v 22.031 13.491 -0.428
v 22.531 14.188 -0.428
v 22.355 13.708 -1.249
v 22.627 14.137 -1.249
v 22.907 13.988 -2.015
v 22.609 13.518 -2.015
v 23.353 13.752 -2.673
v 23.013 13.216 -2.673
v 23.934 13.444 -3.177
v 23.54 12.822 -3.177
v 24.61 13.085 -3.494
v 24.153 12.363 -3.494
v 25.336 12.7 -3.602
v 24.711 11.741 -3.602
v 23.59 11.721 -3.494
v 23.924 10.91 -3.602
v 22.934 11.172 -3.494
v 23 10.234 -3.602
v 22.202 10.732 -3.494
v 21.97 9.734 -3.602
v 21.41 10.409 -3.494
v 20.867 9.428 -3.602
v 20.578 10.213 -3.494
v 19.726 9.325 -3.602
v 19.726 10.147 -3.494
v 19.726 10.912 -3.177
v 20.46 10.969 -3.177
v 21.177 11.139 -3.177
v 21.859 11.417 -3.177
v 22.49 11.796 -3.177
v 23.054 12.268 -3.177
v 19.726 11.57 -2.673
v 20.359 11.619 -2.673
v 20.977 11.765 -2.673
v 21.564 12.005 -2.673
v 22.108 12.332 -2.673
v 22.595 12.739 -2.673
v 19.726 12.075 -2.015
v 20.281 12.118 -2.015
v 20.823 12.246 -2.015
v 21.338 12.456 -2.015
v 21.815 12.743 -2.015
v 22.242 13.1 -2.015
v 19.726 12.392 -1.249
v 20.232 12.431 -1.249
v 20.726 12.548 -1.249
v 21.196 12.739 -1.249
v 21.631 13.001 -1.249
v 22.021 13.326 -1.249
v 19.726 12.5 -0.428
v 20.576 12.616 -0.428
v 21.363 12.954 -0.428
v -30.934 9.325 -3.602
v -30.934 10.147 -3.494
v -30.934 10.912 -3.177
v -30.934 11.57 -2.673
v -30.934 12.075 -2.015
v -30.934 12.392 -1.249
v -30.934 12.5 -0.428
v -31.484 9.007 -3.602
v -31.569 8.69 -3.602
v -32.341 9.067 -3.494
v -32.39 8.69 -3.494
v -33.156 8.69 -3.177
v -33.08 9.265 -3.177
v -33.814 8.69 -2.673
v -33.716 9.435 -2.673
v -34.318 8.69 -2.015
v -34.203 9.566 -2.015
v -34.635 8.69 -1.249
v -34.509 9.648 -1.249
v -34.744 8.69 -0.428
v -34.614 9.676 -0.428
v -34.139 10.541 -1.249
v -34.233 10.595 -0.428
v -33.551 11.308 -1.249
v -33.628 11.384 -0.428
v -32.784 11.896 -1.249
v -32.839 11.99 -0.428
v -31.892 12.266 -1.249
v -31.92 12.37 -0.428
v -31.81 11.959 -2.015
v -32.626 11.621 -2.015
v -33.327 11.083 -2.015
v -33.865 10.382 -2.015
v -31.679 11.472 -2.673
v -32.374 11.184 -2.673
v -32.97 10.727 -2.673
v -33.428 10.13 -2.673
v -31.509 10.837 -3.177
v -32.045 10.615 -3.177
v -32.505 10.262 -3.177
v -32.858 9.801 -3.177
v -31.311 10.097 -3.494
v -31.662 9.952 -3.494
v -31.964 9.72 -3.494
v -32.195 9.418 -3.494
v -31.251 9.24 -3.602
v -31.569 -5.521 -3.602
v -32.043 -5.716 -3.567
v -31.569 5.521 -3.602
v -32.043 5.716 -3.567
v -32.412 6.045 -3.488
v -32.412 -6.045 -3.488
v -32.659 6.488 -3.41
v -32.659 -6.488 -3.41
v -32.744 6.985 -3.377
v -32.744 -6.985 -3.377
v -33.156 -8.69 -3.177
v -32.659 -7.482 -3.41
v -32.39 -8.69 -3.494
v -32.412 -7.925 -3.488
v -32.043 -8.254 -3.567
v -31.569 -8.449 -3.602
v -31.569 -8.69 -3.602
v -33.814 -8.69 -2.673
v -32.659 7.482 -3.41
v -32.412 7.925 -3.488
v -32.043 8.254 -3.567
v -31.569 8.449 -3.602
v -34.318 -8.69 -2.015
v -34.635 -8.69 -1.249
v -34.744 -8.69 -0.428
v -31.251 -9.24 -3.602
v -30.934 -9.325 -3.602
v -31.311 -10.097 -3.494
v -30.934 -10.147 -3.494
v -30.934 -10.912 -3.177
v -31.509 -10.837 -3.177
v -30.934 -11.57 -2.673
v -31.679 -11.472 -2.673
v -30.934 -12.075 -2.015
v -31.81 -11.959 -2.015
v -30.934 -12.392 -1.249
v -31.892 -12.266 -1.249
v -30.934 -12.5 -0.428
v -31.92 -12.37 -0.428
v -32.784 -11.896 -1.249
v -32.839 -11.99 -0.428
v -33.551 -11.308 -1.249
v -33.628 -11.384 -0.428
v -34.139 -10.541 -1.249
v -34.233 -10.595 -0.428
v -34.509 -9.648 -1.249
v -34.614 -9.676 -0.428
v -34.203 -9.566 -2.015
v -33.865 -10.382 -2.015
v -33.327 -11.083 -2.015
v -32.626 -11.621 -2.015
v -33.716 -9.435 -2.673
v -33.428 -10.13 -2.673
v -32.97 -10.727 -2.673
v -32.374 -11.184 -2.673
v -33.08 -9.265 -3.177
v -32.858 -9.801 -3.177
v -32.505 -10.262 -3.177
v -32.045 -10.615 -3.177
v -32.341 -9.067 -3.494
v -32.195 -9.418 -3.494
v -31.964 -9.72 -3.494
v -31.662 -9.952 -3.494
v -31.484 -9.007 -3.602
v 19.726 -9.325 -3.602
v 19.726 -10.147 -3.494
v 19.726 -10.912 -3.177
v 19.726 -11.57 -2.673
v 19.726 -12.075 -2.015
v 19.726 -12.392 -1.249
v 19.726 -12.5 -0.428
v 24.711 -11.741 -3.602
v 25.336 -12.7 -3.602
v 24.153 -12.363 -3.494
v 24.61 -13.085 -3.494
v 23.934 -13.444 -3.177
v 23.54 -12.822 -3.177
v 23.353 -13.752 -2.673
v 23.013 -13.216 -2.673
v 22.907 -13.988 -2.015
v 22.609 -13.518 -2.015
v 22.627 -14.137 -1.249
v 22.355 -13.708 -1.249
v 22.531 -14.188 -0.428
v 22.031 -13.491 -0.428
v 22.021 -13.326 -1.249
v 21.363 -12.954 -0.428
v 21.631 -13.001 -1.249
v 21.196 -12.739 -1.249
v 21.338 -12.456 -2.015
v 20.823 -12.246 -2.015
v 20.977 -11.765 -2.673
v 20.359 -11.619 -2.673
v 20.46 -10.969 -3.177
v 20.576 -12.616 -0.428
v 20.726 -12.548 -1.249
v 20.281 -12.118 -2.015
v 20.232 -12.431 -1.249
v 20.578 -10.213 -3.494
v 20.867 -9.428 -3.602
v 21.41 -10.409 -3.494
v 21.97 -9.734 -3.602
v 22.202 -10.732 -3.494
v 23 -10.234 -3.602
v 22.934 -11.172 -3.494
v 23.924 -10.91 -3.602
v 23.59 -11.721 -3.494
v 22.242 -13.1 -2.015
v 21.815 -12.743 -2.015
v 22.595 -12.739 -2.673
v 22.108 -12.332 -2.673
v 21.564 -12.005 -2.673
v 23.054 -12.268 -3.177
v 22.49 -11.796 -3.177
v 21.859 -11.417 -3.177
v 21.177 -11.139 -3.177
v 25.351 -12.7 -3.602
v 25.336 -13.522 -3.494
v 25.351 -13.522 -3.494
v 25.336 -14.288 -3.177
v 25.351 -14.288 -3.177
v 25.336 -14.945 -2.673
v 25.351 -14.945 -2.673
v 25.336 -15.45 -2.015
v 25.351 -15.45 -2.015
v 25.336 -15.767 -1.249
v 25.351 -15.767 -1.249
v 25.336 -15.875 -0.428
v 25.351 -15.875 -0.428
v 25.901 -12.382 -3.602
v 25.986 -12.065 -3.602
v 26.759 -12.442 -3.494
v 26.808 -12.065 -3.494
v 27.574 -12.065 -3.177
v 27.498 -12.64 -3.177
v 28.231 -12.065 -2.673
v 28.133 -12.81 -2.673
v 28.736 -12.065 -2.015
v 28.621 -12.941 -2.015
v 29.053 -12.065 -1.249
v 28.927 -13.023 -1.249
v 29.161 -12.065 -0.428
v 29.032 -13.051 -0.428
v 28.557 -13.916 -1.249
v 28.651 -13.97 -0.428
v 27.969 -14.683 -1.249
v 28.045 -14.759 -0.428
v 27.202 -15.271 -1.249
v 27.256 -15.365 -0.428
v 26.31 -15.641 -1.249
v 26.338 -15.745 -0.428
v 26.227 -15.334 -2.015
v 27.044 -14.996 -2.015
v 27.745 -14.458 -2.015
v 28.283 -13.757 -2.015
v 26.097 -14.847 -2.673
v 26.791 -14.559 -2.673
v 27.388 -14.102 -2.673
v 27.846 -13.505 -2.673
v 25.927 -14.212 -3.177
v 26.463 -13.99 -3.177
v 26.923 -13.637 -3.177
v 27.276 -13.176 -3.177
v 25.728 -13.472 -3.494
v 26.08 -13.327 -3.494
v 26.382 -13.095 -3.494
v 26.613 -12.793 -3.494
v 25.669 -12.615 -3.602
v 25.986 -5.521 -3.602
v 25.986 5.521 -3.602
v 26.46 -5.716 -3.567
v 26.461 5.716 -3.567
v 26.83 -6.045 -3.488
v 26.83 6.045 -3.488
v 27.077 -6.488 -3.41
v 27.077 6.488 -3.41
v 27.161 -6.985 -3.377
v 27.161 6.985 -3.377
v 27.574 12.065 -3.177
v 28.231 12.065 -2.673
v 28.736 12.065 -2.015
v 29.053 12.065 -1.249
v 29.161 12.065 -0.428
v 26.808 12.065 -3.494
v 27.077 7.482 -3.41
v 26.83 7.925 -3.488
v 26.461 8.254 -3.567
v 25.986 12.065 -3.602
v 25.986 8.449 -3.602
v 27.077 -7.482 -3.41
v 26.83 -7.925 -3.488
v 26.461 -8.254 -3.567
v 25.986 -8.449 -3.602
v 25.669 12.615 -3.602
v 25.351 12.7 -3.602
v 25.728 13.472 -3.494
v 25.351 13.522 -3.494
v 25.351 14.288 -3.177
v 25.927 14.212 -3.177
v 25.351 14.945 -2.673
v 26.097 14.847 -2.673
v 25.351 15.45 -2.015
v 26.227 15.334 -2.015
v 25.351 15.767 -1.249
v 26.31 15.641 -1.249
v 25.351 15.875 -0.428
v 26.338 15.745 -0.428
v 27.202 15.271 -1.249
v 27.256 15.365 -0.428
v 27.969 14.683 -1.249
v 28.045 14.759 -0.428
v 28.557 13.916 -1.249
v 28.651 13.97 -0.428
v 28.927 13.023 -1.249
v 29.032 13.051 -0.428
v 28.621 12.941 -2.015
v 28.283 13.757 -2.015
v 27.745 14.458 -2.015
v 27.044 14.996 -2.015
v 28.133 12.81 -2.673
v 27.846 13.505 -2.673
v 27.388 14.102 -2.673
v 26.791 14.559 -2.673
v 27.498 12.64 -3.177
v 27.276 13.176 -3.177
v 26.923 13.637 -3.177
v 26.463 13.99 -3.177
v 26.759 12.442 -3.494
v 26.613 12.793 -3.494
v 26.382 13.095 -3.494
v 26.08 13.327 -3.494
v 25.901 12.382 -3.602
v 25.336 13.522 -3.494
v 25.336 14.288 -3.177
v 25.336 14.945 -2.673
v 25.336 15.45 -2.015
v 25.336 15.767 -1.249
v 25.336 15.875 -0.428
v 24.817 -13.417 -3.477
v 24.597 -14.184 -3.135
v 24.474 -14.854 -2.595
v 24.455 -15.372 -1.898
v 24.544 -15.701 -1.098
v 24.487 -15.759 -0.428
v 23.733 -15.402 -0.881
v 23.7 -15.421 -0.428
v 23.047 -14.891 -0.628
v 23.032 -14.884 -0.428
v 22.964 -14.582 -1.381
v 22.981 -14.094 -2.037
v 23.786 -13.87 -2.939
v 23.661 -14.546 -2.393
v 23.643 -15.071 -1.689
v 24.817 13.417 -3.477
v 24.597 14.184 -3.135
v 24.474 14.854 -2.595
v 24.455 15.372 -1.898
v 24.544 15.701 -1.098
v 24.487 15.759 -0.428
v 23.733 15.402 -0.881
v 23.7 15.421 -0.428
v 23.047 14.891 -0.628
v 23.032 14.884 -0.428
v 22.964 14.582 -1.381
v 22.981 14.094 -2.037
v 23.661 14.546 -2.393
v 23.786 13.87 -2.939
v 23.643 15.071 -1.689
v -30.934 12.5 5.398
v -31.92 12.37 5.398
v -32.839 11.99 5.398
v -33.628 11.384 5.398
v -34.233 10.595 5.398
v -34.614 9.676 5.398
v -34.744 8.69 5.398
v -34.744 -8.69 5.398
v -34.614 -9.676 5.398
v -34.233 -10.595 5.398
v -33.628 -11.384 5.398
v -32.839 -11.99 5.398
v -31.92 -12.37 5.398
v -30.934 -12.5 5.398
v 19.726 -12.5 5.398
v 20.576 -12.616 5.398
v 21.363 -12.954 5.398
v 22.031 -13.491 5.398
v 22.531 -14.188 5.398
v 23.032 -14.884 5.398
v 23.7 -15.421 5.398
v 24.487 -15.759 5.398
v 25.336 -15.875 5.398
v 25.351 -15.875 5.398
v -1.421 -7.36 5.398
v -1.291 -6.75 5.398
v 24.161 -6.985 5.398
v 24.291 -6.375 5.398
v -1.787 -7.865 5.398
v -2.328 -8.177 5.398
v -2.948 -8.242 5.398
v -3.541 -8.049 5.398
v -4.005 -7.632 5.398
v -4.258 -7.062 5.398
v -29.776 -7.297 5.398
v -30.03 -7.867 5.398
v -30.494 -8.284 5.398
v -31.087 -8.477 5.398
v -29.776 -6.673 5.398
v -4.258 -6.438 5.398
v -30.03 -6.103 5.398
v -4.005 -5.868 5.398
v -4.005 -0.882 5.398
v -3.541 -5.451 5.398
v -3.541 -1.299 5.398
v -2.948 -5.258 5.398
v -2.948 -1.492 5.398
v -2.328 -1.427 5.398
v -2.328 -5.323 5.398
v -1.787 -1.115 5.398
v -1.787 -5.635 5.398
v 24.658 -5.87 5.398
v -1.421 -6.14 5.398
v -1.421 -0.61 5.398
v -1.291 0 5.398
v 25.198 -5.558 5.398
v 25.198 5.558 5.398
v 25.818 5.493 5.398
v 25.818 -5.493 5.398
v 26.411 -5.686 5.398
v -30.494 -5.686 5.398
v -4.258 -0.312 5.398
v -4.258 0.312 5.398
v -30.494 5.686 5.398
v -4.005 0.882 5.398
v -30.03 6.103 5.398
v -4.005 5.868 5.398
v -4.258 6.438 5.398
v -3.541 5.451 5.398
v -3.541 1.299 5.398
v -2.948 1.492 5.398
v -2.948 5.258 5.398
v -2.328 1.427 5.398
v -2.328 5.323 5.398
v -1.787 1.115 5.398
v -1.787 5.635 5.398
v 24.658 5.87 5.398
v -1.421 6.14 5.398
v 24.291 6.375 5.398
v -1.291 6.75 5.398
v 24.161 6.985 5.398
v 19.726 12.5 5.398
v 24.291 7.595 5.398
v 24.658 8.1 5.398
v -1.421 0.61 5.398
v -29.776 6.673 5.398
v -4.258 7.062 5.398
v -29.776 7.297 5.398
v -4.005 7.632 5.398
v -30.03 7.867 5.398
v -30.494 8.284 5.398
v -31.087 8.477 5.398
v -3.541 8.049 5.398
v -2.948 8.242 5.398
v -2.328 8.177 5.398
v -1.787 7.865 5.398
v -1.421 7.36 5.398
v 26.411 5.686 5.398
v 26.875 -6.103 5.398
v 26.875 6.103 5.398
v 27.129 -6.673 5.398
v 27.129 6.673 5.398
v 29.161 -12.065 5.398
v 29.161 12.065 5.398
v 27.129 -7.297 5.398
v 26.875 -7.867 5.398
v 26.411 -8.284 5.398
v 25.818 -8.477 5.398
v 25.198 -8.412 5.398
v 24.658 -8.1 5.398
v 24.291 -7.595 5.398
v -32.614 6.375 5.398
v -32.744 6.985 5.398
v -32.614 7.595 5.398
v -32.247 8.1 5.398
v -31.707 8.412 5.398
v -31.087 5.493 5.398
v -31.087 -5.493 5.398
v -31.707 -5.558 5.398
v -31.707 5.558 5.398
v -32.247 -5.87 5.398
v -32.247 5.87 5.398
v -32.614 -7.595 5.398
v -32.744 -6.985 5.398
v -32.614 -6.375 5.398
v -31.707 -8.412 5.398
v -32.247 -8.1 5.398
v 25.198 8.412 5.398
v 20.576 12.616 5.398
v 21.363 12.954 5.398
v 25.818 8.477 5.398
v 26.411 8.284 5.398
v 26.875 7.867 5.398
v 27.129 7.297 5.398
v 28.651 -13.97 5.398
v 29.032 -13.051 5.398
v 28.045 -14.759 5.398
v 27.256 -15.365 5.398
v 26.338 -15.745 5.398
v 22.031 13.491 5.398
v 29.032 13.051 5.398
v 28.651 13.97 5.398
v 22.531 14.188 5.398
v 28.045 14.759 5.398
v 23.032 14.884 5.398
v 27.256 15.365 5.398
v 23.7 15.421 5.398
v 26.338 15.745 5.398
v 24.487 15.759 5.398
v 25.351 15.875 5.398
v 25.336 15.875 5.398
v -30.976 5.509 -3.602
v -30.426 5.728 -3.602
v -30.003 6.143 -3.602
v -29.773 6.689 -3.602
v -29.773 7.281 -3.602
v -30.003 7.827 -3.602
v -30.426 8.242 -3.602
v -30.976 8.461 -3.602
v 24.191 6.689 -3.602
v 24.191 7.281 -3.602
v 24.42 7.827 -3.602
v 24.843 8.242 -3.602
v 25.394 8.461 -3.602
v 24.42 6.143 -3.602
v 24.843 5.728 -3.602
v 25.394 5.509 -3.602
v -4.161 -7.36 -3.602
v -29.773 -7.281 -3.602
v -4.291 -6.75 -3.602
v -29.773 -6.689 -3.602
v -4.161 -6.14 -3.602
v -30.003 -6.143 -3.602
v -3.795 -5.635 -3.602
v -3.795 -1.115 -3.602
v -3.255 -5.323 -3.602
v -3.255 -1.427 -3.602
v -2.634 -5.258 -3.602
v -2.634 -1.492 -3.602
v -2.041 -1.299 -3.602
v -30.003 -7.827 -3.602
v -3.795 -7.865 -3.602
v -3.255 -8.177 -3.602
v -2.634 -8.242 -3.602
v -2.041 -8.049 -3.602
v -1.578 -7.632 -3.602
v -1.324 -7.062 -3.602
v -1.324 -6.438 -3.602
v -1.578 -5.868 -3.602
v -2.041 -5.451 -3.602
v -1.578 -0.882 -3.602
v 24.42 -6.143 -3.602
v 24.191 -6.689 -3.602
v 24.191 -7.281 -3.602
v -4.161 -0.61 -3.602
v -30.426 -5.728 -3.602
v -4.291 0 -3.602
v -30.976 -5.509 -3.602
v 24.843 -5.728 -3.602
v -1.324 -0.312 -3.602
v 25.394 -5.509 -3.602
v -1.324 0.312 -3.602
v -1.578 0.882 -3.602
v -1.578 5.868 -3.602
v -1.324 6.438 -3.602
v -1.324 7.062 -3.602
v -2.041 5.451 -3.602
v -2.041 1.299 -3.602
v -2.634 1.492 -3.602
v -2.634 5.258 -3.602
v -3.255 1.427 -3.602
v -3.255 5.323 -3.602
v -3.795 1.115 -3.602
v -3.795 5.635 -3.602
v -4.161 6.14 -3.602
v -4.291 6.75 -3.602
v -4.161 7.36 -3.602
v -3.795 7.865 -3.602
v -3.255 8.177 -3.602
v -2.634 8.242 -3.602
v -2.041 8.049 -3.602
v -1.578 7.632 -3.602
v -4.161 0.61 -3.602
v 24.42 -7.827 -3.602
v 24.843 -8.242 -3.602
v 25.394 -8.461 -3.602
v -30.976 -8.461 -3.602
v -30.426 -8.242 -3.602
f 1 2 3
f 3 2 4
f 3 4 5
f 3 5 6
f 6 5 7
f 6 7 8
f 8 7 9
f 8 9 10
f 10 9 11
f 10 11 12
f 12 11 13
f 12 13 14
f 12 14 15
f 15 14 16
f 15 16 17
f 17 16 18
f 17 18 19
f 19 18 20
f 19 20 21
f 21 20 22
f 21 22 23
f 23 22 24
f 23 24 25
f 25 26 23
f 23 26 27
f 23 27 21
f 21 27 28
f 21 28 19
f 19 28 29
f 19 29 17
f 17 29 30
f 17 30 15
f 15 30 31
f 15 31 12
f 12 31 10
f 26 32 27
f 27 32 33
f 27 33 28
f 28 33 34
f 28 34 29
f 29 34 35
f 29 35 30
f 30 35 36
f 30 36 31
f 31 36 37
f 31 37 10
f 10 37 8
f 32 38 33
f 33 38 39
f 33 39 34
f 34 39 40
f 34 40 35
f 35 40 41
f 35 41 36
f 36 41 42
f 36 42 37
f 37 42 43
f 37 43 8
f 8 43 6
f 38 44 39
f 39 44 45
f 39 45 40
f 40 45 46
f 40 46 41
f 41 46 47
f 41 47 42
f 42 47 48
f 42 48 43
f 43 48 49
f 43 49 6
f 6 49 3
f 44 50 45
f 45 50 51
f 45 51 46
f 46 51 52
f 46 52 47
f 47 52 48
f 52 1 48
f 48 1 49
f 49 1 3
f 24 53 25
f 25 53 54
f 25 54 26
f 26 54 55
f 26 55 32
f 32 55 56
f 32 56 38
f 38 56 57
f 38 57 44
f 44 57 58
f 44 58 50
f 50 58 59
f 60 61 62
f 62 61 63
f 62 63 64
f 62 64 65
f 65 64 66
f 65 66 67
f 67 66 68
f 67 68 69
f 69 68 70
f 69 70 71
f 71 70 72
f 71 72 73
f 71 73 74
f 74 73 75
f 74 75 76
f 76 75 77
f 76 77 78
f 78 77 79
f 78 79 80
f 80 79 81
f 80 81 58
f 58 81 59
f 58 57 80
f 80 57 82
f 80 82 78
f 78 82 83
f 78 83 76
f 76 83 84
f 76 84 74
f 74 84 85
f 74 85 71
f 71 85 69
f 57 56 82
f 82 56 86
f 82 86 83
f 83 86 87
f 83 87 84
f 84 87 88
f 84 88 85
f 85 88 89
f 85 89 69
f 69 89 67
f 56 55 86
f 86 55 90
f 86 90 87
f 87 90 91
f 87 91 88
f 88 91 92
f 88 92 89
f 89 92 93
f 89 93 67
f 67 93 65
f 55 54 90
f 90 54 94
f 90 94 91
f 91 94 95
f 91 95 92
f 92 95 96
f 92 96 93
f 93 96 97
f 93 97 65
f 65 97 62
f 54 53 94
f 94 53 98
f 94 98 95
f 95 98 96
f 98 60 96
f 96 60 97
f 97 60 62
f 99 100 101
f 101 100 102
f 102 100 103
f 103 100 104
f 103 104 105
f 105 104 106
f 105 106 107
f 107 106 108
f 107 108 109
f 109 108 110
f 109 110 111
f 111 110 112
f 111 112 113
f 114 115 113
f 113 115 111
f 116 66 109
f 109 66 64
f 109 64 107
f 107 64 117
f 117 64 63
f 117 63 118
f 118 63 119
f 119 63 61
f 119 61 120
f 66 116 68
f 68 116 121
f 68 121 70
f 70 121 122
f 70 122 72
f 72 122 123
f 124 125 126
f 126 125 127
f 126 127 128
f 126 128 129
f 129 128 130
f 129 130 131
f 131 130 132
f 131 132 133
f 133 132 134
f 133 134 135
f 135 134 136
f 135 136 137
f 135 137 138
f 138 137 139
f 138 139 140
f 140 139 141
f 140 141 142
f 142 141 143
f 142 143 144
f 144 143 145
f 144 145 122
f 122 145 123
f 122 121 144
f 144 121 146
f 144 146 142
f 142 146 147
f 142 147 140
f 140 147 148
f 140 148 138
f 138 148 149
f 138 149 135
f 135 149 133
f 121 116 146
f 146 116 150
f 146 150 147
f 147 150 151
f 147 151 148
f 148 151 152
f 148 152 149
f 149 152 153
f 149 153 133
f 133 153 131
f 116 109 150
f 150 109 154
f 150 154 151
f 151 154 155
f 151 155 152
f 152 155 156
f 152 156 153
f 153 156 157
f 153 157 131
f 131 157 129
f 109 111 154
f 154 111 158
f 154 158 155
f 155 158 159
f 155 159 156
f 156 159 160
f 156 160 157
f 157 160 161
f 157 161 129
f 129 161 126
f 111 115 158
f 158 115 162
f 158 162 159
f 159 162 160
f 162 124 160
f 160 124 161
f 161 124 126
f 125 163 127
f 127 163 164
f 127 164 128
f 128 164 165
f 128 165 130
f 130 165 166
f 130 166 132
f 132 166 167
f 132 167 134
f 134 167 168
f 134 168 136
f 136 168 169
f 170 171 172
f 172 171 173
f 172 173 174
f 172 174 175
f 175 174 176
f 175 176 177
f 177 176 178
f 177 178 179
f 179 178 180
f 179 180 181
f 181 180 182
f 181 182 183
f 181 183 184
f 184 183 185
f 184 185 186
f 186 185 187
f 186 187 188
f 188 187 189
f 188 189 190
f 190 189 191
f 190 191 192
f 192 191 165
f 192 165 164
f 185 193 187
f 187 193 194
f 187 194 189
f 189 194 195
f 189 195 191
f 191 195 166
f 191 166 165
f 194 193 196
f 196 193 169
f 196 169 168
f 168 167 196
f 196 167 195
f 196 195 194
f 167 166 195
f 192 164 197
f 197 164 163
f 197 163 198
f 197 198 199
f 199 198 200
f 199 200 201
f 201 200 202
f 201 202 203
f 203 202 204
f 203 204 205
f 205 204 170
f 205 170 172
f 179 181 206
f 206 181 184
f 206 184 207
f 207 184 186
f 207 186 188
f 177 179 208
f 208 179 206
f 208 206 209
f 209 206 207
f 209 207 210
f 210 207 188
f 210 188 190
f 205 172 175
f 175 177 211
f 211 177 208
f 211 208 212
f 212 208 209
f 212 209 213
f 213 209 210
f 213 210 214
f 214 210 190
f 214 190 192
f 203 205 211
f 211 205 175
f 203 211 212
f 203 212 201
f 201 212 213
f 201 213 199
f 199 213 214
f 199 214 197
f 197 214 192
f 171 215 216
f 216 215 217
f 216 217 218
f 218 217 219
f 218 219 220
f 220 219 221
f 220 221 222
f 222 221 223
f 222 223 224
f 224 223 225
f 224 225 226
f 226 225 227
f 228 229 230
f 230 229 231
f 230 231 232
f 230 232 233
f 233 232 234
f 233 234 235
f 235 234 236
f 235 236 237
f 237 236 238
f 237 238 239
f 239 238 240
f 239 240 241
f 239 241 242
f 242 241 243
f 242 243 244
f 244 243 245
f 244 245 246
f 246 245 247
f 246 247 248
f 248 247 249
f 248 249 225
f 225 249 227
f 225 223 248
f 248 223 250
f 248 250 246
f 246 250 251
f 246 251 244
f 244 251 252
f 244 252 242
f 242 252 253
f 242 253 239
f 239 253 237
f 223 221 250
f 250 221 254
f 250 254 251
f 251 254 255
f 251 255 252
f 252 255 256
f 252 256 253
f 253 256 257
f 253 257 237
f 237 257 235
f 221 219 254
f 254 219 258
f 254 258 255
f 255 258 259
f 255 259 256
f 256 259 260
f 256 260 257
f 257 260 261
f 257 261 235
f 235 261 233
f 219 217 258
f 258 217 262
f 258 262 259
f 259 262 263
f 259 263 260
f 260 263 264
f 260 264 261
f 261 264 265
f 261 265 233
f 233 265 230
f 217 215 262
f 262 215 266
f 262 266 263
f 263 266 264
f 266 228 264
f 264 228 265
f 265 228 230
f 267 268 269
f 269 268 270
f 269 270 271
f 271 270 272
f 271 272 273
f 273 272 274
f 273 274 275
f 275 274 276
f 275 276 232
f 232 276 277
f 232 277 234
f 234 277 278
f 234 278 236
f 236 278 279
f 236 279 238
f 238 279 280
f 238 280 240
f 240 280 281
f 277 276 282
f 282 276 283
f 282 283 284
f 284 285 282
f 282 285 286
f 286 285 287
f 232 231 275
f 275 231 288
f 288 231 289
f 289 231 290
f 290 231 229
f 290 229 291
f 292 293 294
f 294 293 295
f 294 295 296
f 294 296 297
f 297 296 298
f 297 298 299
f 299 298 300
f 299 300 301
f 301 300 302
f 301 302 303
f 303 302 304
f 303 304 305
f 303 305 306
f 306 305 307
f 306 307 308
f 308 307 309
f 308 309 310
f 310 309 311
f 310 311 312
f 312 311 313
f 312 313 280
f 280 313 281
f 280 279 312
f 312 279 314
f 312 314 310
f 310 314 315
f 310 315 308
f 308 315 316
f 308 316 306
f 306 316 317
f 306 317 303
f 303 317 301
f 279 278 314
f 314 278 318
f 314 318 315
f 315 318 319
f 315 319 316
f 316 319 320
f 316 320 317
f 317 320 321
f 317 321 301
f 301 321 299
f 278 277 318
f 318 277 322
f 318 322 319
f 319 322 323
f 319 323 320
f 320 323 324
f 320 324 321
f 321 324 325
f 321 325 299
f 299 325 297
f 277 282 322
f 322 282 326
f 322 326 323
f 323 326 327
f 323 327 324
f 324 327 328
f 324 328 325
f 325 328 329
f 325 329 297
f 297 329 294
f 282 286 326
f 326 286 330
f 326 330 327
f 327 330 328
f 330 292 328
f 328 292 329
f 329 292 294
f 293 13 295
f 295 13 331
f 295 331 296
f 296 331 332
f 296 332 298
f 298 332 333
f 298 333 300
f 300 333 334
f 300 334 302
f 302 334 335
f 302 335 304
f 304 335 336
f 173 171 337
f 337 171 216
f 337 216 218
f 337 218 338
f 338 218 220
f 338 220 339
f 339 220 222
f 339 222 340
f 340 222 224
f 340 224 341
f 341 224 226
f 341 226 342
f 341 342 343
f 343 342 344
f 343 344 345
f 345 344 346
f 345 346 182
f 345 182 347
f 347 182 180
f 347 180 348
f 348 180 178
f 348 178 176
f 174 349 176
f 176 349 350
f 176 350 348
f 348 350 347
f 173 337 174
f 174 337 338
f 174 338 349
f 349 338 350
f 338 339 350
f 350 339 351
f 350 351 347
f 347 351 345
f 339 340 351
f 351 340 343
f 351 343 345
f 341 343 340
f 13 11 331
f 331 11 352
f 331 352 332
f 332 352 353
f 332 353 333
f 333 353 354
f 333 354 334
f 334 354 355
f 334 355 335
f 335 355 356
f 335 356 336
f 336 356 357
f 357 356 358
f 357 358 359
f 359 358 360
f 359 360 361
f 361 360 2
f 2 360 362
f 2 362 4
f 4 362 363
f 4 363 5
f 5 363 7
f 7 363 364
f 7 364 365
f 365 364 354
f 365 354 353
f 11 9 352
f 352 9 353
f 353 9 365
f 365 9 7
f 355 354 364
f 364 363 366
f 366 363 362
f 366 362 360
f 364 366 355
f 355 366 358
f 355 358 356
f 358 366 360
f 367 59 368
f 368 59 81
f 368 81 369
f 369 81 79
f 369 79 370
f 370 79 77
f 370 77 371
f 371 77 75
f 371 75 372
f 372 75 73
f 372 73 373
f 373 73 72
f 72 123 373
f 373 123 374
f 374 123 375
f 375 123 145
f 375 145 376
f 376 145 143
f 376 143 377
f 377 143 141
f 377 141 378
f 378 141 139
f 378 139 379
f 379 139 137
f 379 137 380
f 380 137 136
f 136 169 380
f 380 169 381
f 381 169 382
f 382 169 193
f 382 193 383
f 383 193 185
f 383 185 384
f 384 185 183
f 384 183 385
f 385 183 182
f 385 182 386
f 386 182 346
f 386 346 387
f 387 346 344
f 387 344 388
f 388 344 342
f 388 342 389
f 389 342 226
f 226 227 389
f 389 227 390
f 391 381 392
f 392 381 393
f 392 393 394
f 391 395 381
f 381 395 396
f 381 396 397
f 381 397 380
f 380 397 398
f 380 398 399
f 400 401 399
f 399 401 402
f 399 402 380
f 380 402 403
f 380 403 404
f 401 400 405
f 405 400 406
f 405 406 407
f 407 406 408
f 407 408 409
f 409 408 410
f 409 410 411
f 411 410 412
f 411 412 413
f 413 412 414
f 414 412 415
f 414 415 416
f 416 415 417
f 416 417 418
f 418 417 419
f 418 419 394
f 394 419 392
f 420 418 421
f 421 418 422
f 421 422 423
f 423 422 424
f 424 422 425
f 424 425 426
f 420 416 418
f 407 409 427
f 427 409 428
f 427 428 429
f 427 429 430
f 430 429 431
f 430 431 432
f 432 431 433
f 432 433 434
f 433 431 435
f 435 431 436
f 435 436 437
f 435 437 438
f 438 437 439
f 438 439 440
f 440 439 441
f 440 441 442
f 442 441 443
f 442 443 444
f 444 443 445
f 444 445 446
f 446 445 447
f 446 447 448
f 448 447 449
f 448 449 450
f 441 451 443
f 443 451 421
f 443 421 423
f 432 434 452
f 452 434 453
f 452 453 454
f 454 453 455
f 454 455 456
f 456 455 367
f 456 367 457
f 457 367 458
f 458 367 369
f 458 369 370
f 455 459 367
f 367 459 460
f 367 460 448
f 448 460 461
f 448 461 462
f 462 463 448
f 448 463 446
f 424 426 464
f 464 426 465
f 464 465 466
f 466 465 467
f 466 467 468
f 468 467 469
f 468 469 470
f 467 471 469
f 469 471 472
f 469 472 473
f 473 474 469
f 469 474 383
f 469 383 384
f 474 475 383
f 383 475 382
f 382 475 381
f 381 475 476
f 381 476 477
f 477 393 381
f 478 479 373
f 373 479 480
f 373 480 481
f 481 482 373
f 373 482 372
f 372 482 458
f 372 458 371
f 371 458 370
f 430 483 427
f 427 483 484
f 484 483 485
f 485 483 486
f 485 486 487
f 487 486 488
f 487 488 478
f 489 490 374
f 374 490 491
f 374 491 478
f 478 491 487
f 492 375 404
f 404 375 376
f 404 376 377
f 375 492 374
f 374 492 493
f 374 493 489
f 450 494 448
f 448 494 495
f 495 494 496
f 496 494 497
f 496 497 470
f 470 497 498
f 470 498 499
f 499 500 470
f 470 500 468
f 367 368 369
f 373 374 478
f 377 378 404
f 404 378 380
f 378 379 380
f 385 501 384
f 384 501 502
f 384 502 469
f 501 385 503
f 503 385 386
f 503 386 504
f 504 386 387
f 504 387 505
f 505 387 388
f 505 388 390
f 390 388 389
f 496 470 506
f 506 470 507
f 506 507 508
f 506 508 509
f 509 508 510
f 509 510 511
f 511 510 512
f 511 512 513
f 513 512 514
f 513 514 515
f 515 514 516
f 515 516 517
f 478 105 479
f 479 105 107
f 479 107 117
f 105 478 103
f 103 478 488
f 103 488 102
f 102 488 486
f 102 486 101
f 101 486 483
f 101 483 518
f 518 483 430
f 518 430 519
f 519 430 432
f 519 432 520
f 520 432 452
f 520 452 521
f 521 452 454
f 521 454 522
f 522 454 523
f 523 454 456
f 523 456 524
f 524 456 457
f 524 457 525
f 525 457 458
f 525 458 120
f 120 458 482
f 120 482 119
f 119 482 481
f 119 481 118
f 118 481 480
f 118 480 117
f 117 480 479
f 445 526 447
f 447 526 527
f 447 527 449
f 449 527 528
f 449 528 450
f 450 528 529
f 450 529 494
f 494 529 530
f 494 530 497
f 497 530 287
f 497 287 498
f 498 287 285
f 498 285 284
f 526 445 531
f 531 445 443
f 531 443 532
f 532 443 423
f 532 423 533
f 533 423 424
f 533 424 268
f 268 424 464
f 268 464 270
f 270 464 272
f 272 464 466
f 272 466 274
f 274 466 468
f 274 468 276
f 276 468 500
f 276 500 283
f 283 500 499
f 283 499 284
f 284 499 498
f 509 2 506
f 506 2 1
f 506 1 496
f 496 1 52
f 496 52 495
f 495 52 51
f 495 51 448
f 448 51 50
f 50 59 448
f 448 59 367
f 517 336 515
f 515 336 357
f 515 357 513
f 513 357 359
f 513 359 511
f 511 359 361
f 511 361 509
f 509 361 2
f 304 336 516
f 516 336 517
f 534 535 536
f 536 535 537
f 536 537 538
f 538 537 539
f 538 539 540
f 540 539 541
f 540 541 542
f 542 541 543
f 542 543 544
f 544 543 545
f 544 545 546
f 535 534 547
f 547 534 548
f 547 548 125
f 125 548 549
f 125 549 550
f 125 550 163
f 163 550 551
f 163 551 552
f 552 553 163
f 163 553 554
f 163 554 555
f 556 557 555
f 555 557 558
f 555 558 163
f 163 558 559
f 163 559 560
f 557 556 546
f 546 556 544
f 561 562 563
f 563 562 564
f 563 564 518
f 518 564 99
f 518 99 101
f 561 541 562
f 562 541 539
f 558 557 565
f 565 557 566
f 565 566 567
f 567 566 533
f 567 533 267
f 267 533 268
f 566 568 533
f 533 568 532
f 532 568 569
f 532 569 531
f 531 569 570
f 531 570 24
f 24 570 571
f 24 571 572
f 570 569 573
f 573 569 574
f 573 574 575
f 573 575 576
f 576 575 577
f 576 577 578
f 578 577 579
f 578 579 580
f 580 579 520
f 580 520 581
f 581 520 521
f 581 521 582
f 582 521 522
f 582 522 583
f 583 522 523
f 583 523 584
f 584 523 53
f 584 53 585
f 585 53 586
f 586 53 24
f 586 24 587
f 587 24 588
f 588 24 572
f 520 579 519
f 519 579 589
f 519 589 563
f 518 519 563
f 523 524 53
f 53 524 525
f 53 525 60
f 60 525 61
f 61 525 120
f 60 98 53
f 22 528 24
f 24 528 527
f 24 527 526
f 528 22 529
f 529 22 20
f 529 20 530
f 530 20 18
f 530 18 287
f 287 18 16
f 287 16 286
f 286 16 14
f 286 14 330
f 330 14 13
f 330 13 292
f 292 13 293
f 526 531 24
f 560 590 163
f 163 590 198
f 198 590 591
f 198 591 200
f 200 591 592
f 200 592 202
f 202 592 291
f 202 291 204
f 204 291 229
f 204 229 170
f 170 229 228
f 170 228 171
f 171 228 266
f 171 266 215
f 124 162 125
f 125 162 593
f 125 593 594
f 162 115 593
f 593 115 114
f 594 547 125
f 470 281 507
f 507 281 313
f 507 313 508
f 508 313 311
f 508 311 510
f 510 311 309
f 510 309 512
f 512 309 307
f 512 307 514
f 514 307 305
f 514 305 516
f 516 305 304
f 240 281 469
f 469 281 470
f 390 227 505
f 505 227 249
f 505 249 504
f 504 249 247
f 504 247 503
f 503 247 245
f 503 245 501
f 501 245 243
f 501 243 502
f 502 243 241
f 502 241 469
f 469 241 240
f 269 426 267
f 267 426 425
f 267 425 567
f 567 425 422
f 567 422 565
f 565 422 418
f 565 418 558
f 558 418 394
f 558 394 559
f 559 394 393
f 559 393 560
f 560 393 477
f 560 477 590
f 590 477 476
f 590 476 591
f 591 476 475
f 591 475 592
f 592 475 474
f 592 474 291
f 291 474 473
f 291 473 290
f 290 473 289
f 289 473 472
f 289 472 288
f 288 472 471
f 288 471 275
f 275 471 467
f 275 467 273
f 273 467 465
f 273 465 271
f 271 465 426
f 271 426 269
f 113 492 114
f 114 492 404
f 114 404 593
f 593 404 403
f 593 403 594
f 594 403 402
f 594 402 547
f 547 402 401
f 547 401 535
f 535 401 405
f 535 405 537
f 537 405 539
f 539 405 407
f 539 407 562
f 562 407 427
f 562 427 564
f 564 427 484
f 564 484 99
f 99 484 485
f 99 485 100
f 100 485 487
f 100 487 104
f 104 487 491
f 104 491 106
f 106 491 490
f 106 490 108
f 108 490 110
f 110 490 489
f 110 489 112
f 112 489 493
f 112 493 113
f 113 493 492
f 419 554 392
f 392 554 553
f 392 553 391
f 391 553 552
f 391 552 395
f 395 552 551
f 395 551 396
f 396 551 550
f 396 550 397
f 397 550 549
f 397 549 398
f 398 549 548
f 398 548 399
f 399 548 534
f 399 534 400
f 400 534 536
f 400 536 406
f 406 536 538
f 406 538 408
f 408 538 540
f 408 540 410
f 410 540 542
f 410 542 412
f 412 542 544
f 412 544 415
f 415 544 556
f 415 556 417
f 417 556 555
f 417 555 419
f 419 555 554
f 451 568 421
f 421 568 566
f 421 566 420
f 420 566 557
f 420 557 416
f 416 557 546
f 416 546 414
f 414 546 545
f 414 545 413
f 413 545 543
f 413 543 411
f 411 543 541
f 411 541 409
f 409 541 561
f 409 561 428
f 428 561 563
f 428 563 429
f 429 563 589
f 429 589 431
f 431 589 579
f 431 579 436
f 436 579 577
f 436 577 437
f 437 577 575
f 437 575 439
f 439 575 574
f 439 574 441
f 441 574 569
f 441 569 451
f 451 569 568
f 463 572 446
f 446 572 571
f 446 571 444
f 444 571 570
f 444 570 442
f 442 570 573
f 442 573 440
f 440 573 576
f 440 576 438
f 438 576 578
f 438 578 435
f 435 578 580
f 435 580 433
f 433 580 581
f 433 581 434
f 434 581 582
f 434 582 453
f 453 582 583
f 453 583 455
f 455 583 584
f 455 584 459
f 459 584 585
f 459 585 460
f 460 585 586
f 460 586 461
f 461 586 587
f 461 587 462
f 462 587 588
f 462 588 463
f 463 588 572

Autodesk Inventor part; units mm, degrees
ref_plane "YZ Plane" through (0, 0, 0) normal (1, 0, 0) x (0, 1, 0)
ref_plane "XZ Plane" through (0, 0, 0) normal (0, 1, 0) x (-1, 0, 0)
ref_plane "XY Plane" through (0, 0, 0) normal (0, 0, 1) x (1, 0, 0)
sketch "Sketch1" plane through (0, 0, 0) normal (0, 0, 1) x (1, 0, 0)
  circle A0 centre (-10.2325, -6.35) radius 2
  circle A1 centre (-10.2325, 6.35) radius 2
  circle A2 centre (10.0875, 6.35) radius 2
  circle A3 centre (10.0875, -6.35) radius 2
  line L0 (-15.3125, 10.2775) -> (10.2325, 10.2775)
  line L1 (10.2325, 10.2775) -> (15.3125, 10.2775)
  line L2 (15.3125, 10.2775) -> (15.3125, -10.2775)
  line L3 (-15.3125, 10.2775) -> (-15.3125, -10.2775)
  line L4 (-15.3125, -10.2775) -> (15.3125, -10.2775)
  line L5 (0, -10.2775) -> (0, 10.2775)
  line L6 (-15.3125, 0) -> (0, 0)
  point P0 (0, 0)
  dimension "d1" = 5.08
extrude "Extrusion1" add sketch "Sketch1" along normal blind 3.81 contours A0 | A1 | A2 | A3 | L0 L5 L6 L3 | L0 L1 L2 L4 L5 | L6 L5 L4 L3
sketch "Sketch2" plane through (0, 0, 3.81) normal (0, 0, 1) x (1, 0, 0)
  line L0 (-15.3125, -10.2775) -> (15.3125, -10.2775) projected
  line L1 (15.3125, -10.2775) -> (15.3125, 10.2775) projected
  line L2 (15.3125, 10.2775) -> (-15.3125, 10.2775) projected
  line L3 (-15.3125, 10.2775) -> (-15.3125, -10.2775) projected
  point P0 (0, 0)
extrude "Extrusion2" add sketch "Sketch2" along normal blind 1.5875
sketch "Sketch3" plane through (0, 0, 5.3975) normal (0, 0, 1) x (1, 0, 0)
  circle A0 centre (-10.2325, -6.35) radius 2 projected
  circle A1 centre (10.0875, -6.35) radius 2 projected
  circle A2 centre (10.0875, 6.35) radius 2 projected
  circle A3 centre (-10.2325, 6.35) radius 2 projected
  line L0 (-15.3125, -10.2775) -> (15.3125, -10.2775) projected
  line L1 (10.0875, -10.2775) -> (10.0875, 10.2775)
  line L2 (15.3125, 10.2775) -> (-15.3125, 10.2775) projected
  line L3 (-10.2325, -10.2775) -> (-10.2325, 10.2775)
  line L4 (-10.2325, 10.2775) -> (10.0875, 10.2775)
  line L5 (10.0875, -10.2775) -> (-10.2325, -10.2775)
  line L6 (15.3125, -10.2775) -> (15.3125, 10.2775) projected
  point P0 (0, 0)
extrude "Extrusion3" add sketch "Sketch3" along normal blind 8.9916 contours A0 L3 | A0 L3 A3 L2 L1 A2 A1 L0 | L3 A3 | A1 L1 | L1 A2 picked at (-9.5825, -6.2017) picked at (-9.5825, 6.4983) picked at (9.4642, -6.5864) picked at (9.4642, 6.1136)
sketch "Sketch4" plane through (-10.2325, -10.2775, 5.3975) normal (-1, 0, 0) x (0, 0, 1)
  line L0 (8.9916, 20.555) -> (8.9916, 0) projected
  line L1 (8.9916, 10.2775) -> (0, 10.2775)
  line L2 (0, 0) -> (0, 20.555) projected
  line L3 (4.4958, 10.2775) -> (4.4958, 5.7817)
  line L4 (4.4958, 10.2775) -> (4.4958, 14.7733)
  circle A0 centre (4.4958, 5.7817) radius 2
  circle A1 centre (4.4958, 14.7733) radius 2
  point P0 (-5.3975, 10.2775)
  dimension "d8" = 4.4958
  dimension "d9" = 4.4958
  dimension "d10" = 4
  dimension "d11" = 4
extrude "Extrusion4" cut sketch "Sketch4" against normal through all
sketch "Sketch7" plane through (10.0875, -10.2775, 5.3975) normal (1, 0, 0) x (0, 0, -1)
  line L0 (0, 20.555) -> (0, 0) projected
  line L1 (0, 20.555) -> (-8.9916, 20.555) projected
  line L2 (-8.9916, 0) -> (-8.9916, 20.555) projected
  line L3 (0, 0) -> (-8.9916, 0) projected
  point P0 (5.3975, 10.2775)
extrude "Extrusion7" cut sketch "Sketch7" against normal blind 6.289
fillet "Fillet5" radius 3.175 8 edges at (-15.3125, 10.2775, 2.6987) (-15.3125, -10.2775, 2.6987) (15.3125, 10.2775, 2.6987) (15.3125, -10.2775, 2.6987) (3.7984, 10.2775, 9.8933) (-10.2325, 10.2775, 9.8933) (3.7984, -10.2775, 9.8933) (-10.2325, -10.2775, 9.8933)
sketch "Sketch9" plane through (0, 0, 0) normal (0, 0, -1) x (-1, 0, 0)
  line L0 (-34.8064, -15.875) -> (-34.8064, 15.875)
  line L1 (-27.8064, -15.875) -> (-34.8064, -15.875)
  line L2 (-27.8064, -12.5) -> (-27.8064, -15.875)
  line L3 (-27.8064, 12.5) -> (-27.8064, -12.5)
  line L4 (-27.8064, 15.875) -> (-27.8064, 12.5)
  line L5 (-34.8064, 15.875) -> (-27.8064, 15.875)
  line L6 (-27.8064, 12.5) -> (-27.8064, -12.5)
  line L7 (-27.8064, -12.5) -> (27.1936, -12.5)
  line L8 (27.1936, 12.5) -> (27.1936, -12.5)
  line L9 (27.1936, 12.5) -> (-27.8064, 12.5)
  line L10 (-34.8064, 0) -> (-27.8064, 0)
  line L11 (-31.3064, 0) -> (-31.3064, -6.985)
  line L12 (-31.3064, 0) -> (-31.3064, 6.985)
  circle A0 centre (-31.3064, -6.985) radius 1.5
  circle A1 centre (-31.3064, 6.985) radius 1.5
  circle A2 centre (23.6936, -6.985) radius 1.5
  circle A3 centre (23.6936, 6.985) radius 1.5
  line L13 (-34.8064, 0) -> (27.1936, 0)
  line L14 (0, 0) -> (0, 12.5)
  point P0 (0, 0)
  point P1 (-34.8064, 0)
  point P2 (-34.8064, 0)
  dimension "d26" = 6.985
  dimension "d27" = 6.985
  dimension "d28" = 3
  dimension "d29" = 3
extrude "Extrusion9" cut sketch "Sketch9" against normal up to surface (5.3975 mm away) contours L3 L13 L8 L7 | L3 L9 L14 L13 | L14 L9 L8 L13
sketch "Sketch10" plane through (0.6234, 10.2775, 5.3975) normal (0, 0, -1) x (-1, 0, 0)
  line L0 (10.856, -12.7733) -> (10.856, -16.7733) projected
  line L1 (10.856, -3.7817) -> (10.856, -7.7817) projected
  arc A0 (0, 0) -> (-3.175, -3.175) centre (0, -3.175) ccw projected
  arc A1 (0, 0) -> (-3.175, -3.175) centre (0, -3.175) ccw projected
  arc A2 (0, 0) -> (-3.175, -3.175) centre (0, -3.175) ccw projected
  arc A3 (0, 0) -> (-3.175, -3.175) centre (0, -3.175) ccw projected
  arc A4 (10.856, -3.175) -> (7.681, 0) centre (7.681, -3.175) ccw projected
  arc A5 (10.856, -3.175) -> (7.681, 0) centre (7.681, -3.175) ccw projected
  arc A6 (10.856, -3.175) -> (7.681, 0) centre (7.681, -3.175) ccw projected
  line L2 (-3.175, -3.7817) -> (-3.175, -7.7817) projected
  line L3 (-3.175, -3.7817) -> (-3.175, -7.7817) projected
  line L4 (10.856, -3.7817) -> (10.856, -7.7817) projected
  line L5 (-3.175, -12.7733) -> (-3.175, -16.7733) projected
  line L6 (-3.175, -17.38) -> (-3.175, -3.175) projected
  line L7 (-3.175, -3.175) -> (-3.175, -17.38) projected
  line L8 (-3.175, -17.38) -> (-3.175, -3.175) projected
  line L9 (-3.175, -3.7817) -> (-3.175, -7.7817) projected
  line L10 (-3.175, -12.7733) -> (-3.175, -16.7733) projected
  line L11 (-3.175, -3.175) -> (-3.175, -17.38) projected
  line L12 (10.856, -3.175) -> (10.856, -17.38) projected
  line L13 (10.856, -17.38) -> (10.856, -3.175) projected
  line L14 (10.856, -3.175) -> (10.856, -17.38) projected
  line L15 (10.856, -17.38) -> (10.856, -3.175) projected
  line L16 (10.856, -3.7817) -> (10.856, -7.7817) projected
  line L17 (10.856, -12.7733) -> (10.856, -16.7733) projected
  line L18 (-3.175, -12.7733) -> (-3.175, -16.7733) projected
  line L19 (10.856, -12.7733) -> (10.856, -16.7733) projected
  line L20 (7.681, -20.555) -> (0, -20.555) projected
  line L21 (7.681, -20.555) -> (0, -20.555) projected
  line L22 (7.681, -20.555) -> (0, -20.555) projected
  line L23 (7.681, -20.555) -> (0, -20.555) projected
  arc A7 (-3.175, -17.38) -> (0, -20.555) centre (0, -17.38) ccw projected
  arc A8 (-3.175, -17.38) -> (0, -20.555) centre (0, -17.38) ccw projected
  arc A9 (-3.175, -17.38) -> (0, -20.555) centre (0, -17.38) ccw projected
  arc A10 (7.681, -20.555) -> (10.856, -17.38) centre (7.681, -17.38) ccw projected
  arc A11 (7.681, -20.555) -> (10.856, -17.38) centre (7.681, -17.38) ccw projected
  line L24 (0, 0) -> (7.681, 0) projected
  arc A12 (0, 0) -> (-3.175, -3.175) centre (0, -3.175) ccw projected
  line L25 (-3.175, -3.175) -> (-3.175, -17.38) projected
  arc A13 (-3.175, -17.38) -> (0, -20.555) centre (0, -17.38) ccw projected
  line L26 (7.681, -20.555) -> (0, -20.555) projected
  arc A14 (7.681, -20.555) -> (10.856, -17.38) centre (7.681, -17.38) ccw projected
  line L27 (10.856, -17.38) -> (10.856, -3.175) projected
  arc A15 (10.856, -3.175) -> (7.681, 0) centre (7.681, -3.175) ccw projected
  arc A16 (-3.175, -17.38) -> (0, -20.555) centre (0, -17.38) ccw projected
  arc A17 (7.681, -20.555) -> (10.856, -17.38) centre (7.681, -17.38) ccw projected
  arc A18 (7.681, -20.555) -> (10.856, -17.38) centre (7.681, -17.38) ccw projected
  line L28 (7.681, -20.555) -> (0, -20.555) projected
  arc A19 (-3.175, -17.38) -> (0, -20.555) centre (0, -17.38) ccw projected
  line L29 (-3.175, -17.38) -> (-3.175, -3.175) projected
  arc A20 (0, 0) -> (-3.175, -3.175) centre (0, -3.175) ccw projected
  line L30 (0, 0) -> (7.681, 0) projected
  arc A21 (10.856, -3.175) -> (7.681, 0) centre (7.681, -3.175) ccw projected
  line L31 (10.856, -3.175) -> (10.856, -17.38) projected
  line L32 (0, 0) -> (7.681, 0) projected
  line L33 (0, 0) -> (7.681, 0) projected
  line L34 (0, 0) -> (7.681, 0) projected
  line L35 (0, 0) -> (7.681, 0) projected
  arc A22 (10.856, -3.175) -> (7.681, 0) centre (7.681, -3.175) ccw projected
  arc A23 (7.681, -20.555) -> (10.856, -17.38) centre (7.681, -17.38) ccw projected
  line L36 (0.6234, -10.2775) -> (0.6234, 2.2225) projected
  line L37 (0.6234, -10.2775) -> (-1.4597, -6.785)
  line L38 (8.1734, -10.2775) -> (-23.133, -10.2775)
  line L39 (-21.538, 5.5975) -> (-21.538, -26.1525)
  line L40 (-21.538, -26.1525) -> (-28.538, -26.1525)
  line L41 (-28.538, -26.1525) -> (-28.538, 5.5975)
  line L42 (-21.538, 5.5975) -> (-28.538, 5.5975)
  circle A24 centre (-25.038, -3.2925) radius 1.5
  circle A25 centre (-25.038, -17.2625) radius 1.5
  line L43 (-25.038, -10.2775) -> (-25.038, -17.2625)
  line L44 (-23.133, -10.2775) -> (-25.038, -10.2775)
  line L45 (-27.133, -22.7775) -> (-29.038, -22.7775)
  line L46 (-27.133, 2.2225) -> (-29.038, 2.2225)
  line L47 (0.6234, -10.2775) -> (2.7066, -13.77)
  line L48 (-21.538, -22.7775) -> (35.367, -22.7775)
  line L49 (35.367, -22.7775) -> (35.367, 2.2225)
  line L50 (35.367, 2.2225) -> (-21.538, 2.2225)
  circle A26 centre (31.867, -17.2625) radius 1.5
  circle A27 centre (31.867, -3.2925) radius 1.5
  line L51 (0.6234, -10.2775) -> (8.1734, -10.2775)
  point P0 (0.6234, -10.2775)
  point P1 (0.6234, -10.2775)
  point P2 (0, 0)
  dimension "d47" = 1.905
  dimension "d48" = 7.55
extrude "Extrusion10" add sketch "Sketch10" along normal blind 9
fillet "Fillet17" radius 3.81 4 edges at (29.1614, -15.875, 0.8975) (-34.7436, -12.5, 0.8975) (-34.7436, 12.5, 0.8975) (29.1614, 15.875, 0.8975)
fillet "Fillet18" radius 3.175 2 edges at (22.1614, -15.875, 0.8975) (22.1614, 15.875, 0.8975)
fillet "Fillet19" radius 3.175 2 edges at (22.1614, -12.5, 0.8975) (22.1614, 12.5, 0.8975)
sketch "Sketch11" plane through (0, 0, 14.3891) normal (0, 0, 1) x (1, 0, 0)
  arc A0 (-10.2325, -7.1025) -> (-7.0575, -10.2775) centre (-7.0575, -7.1025) ccw projected
  line L0 (-7.0575, -10.2775) -> (0.6234, -10.2775) projected
  arc A1 (0.6234, -10.2775) -> (3.7984, -7.1025) centre (0.6234, -7.1025) ccw projected
  line L1 (3.7984, -7.1025) -> (3.7984, 7.1025) projected
  arc A2 (3.7984, 7.1025) -> (0.6234, 10.2775) centre (0.6234, 7.1025) ccw projected
  line L2 (0.6234, 10.2775) -> (-7.0575, 10.2775) projected
  arc A3 (-7.0575, 10.2775) -> (-10.2325, 7.1025) centre (-7.0575, 7.1025) ccw projected
  line L3 (-10.2325, 7.1025) -> (-10.2325, -7.1025) projected
  arc A4 (-82.2091, -59.7824) -> (-79.0341, -62.9574) centre (-79.0341, -59.7824) ccw
  line L4 (-79.0341, -62.9574) -> (-71.3531, -62.9574)
  arc A5 (-71.3531, -62.9574) -> (-68.1781, -59.7824) centre (-71.3531, -59.7824) ccw
  line L5 (-68.1781, -59.7824) -> (-68.1781, -45.5774)
  arc A6 (-68.1781, -45.5774) -> (-71.3531, -42.4024) centre (-71.3531, -45.5774) ccw
  line L6 (-71.3531, -42.4024) -> (-79.0341, -42.4024)
  arc A7 (-79.0341, -42.4024) -> (-82.2091, -45.5774) centre (-79.0341, -45.5774) ccw
  line L7 (-82.2091, -45.5774) -> (-82.2091, -59.7824)
  point P0 (-71.9766, -52.6799)
extrude "Extrusion11" cut sketch "Sketch11" against normal up to surface (8.9916 mm away) contours L3 A3 L2 A2 L1 A1 L0 A0
fillet "Fillet23" radius 3.175 14 edges at (21.3632, 12.9544, -3.6025) (23.6997, 15.4206, -3.6025) (25.3439, 15.875, -3.6025) (28.0455, 14.7591, -3.6025) (29.1614, 0, -3.6025) (28.0455, -14.7591, -3.6025) (25.3439, -15.875, -3.6025) (23.6997, -15.4206, -3.6025) (21.3632, -12.9544, -3.6025) (-5.6036, -12.5, -3.6025) (-33.6277, -11.3841, -3.6025) (-34.7436, 0, -3.6025) (-33.6277, 11.3841, -3.6025) (-5.6036, 12.5, -3.6025)
sketch "Sketch14" plane through (0.6234, 10.2775, -3.6025) normal (0, 0, -1) x (-1, 0, 0)
  circle A0 centre (3.4145, -17.0275) radius 1.5
  circle A1 centre (3.4145, -10.2775) radius 1.5
  circle A2 centre (3.4145, -3.5275) radius 1.5
  line L0 (-28.538, 1.7875) -> (-28.538, -22.3425) projected
  line L1 (-28.538, -10.2775) -> (35.367, -10.2775)
  line L2 (35.367, -18.9675) -> (35.367, -1.5875) projected
  line L3 (3.4145, -10.2775) -> (3.4145, 9.7711)
  point P0 (0.6234, -10.2775)
extrude "Extrusion14" cut sketch "Sketch14" against normal blind 25.4
properties part number "connecting plate servo flat v5"
